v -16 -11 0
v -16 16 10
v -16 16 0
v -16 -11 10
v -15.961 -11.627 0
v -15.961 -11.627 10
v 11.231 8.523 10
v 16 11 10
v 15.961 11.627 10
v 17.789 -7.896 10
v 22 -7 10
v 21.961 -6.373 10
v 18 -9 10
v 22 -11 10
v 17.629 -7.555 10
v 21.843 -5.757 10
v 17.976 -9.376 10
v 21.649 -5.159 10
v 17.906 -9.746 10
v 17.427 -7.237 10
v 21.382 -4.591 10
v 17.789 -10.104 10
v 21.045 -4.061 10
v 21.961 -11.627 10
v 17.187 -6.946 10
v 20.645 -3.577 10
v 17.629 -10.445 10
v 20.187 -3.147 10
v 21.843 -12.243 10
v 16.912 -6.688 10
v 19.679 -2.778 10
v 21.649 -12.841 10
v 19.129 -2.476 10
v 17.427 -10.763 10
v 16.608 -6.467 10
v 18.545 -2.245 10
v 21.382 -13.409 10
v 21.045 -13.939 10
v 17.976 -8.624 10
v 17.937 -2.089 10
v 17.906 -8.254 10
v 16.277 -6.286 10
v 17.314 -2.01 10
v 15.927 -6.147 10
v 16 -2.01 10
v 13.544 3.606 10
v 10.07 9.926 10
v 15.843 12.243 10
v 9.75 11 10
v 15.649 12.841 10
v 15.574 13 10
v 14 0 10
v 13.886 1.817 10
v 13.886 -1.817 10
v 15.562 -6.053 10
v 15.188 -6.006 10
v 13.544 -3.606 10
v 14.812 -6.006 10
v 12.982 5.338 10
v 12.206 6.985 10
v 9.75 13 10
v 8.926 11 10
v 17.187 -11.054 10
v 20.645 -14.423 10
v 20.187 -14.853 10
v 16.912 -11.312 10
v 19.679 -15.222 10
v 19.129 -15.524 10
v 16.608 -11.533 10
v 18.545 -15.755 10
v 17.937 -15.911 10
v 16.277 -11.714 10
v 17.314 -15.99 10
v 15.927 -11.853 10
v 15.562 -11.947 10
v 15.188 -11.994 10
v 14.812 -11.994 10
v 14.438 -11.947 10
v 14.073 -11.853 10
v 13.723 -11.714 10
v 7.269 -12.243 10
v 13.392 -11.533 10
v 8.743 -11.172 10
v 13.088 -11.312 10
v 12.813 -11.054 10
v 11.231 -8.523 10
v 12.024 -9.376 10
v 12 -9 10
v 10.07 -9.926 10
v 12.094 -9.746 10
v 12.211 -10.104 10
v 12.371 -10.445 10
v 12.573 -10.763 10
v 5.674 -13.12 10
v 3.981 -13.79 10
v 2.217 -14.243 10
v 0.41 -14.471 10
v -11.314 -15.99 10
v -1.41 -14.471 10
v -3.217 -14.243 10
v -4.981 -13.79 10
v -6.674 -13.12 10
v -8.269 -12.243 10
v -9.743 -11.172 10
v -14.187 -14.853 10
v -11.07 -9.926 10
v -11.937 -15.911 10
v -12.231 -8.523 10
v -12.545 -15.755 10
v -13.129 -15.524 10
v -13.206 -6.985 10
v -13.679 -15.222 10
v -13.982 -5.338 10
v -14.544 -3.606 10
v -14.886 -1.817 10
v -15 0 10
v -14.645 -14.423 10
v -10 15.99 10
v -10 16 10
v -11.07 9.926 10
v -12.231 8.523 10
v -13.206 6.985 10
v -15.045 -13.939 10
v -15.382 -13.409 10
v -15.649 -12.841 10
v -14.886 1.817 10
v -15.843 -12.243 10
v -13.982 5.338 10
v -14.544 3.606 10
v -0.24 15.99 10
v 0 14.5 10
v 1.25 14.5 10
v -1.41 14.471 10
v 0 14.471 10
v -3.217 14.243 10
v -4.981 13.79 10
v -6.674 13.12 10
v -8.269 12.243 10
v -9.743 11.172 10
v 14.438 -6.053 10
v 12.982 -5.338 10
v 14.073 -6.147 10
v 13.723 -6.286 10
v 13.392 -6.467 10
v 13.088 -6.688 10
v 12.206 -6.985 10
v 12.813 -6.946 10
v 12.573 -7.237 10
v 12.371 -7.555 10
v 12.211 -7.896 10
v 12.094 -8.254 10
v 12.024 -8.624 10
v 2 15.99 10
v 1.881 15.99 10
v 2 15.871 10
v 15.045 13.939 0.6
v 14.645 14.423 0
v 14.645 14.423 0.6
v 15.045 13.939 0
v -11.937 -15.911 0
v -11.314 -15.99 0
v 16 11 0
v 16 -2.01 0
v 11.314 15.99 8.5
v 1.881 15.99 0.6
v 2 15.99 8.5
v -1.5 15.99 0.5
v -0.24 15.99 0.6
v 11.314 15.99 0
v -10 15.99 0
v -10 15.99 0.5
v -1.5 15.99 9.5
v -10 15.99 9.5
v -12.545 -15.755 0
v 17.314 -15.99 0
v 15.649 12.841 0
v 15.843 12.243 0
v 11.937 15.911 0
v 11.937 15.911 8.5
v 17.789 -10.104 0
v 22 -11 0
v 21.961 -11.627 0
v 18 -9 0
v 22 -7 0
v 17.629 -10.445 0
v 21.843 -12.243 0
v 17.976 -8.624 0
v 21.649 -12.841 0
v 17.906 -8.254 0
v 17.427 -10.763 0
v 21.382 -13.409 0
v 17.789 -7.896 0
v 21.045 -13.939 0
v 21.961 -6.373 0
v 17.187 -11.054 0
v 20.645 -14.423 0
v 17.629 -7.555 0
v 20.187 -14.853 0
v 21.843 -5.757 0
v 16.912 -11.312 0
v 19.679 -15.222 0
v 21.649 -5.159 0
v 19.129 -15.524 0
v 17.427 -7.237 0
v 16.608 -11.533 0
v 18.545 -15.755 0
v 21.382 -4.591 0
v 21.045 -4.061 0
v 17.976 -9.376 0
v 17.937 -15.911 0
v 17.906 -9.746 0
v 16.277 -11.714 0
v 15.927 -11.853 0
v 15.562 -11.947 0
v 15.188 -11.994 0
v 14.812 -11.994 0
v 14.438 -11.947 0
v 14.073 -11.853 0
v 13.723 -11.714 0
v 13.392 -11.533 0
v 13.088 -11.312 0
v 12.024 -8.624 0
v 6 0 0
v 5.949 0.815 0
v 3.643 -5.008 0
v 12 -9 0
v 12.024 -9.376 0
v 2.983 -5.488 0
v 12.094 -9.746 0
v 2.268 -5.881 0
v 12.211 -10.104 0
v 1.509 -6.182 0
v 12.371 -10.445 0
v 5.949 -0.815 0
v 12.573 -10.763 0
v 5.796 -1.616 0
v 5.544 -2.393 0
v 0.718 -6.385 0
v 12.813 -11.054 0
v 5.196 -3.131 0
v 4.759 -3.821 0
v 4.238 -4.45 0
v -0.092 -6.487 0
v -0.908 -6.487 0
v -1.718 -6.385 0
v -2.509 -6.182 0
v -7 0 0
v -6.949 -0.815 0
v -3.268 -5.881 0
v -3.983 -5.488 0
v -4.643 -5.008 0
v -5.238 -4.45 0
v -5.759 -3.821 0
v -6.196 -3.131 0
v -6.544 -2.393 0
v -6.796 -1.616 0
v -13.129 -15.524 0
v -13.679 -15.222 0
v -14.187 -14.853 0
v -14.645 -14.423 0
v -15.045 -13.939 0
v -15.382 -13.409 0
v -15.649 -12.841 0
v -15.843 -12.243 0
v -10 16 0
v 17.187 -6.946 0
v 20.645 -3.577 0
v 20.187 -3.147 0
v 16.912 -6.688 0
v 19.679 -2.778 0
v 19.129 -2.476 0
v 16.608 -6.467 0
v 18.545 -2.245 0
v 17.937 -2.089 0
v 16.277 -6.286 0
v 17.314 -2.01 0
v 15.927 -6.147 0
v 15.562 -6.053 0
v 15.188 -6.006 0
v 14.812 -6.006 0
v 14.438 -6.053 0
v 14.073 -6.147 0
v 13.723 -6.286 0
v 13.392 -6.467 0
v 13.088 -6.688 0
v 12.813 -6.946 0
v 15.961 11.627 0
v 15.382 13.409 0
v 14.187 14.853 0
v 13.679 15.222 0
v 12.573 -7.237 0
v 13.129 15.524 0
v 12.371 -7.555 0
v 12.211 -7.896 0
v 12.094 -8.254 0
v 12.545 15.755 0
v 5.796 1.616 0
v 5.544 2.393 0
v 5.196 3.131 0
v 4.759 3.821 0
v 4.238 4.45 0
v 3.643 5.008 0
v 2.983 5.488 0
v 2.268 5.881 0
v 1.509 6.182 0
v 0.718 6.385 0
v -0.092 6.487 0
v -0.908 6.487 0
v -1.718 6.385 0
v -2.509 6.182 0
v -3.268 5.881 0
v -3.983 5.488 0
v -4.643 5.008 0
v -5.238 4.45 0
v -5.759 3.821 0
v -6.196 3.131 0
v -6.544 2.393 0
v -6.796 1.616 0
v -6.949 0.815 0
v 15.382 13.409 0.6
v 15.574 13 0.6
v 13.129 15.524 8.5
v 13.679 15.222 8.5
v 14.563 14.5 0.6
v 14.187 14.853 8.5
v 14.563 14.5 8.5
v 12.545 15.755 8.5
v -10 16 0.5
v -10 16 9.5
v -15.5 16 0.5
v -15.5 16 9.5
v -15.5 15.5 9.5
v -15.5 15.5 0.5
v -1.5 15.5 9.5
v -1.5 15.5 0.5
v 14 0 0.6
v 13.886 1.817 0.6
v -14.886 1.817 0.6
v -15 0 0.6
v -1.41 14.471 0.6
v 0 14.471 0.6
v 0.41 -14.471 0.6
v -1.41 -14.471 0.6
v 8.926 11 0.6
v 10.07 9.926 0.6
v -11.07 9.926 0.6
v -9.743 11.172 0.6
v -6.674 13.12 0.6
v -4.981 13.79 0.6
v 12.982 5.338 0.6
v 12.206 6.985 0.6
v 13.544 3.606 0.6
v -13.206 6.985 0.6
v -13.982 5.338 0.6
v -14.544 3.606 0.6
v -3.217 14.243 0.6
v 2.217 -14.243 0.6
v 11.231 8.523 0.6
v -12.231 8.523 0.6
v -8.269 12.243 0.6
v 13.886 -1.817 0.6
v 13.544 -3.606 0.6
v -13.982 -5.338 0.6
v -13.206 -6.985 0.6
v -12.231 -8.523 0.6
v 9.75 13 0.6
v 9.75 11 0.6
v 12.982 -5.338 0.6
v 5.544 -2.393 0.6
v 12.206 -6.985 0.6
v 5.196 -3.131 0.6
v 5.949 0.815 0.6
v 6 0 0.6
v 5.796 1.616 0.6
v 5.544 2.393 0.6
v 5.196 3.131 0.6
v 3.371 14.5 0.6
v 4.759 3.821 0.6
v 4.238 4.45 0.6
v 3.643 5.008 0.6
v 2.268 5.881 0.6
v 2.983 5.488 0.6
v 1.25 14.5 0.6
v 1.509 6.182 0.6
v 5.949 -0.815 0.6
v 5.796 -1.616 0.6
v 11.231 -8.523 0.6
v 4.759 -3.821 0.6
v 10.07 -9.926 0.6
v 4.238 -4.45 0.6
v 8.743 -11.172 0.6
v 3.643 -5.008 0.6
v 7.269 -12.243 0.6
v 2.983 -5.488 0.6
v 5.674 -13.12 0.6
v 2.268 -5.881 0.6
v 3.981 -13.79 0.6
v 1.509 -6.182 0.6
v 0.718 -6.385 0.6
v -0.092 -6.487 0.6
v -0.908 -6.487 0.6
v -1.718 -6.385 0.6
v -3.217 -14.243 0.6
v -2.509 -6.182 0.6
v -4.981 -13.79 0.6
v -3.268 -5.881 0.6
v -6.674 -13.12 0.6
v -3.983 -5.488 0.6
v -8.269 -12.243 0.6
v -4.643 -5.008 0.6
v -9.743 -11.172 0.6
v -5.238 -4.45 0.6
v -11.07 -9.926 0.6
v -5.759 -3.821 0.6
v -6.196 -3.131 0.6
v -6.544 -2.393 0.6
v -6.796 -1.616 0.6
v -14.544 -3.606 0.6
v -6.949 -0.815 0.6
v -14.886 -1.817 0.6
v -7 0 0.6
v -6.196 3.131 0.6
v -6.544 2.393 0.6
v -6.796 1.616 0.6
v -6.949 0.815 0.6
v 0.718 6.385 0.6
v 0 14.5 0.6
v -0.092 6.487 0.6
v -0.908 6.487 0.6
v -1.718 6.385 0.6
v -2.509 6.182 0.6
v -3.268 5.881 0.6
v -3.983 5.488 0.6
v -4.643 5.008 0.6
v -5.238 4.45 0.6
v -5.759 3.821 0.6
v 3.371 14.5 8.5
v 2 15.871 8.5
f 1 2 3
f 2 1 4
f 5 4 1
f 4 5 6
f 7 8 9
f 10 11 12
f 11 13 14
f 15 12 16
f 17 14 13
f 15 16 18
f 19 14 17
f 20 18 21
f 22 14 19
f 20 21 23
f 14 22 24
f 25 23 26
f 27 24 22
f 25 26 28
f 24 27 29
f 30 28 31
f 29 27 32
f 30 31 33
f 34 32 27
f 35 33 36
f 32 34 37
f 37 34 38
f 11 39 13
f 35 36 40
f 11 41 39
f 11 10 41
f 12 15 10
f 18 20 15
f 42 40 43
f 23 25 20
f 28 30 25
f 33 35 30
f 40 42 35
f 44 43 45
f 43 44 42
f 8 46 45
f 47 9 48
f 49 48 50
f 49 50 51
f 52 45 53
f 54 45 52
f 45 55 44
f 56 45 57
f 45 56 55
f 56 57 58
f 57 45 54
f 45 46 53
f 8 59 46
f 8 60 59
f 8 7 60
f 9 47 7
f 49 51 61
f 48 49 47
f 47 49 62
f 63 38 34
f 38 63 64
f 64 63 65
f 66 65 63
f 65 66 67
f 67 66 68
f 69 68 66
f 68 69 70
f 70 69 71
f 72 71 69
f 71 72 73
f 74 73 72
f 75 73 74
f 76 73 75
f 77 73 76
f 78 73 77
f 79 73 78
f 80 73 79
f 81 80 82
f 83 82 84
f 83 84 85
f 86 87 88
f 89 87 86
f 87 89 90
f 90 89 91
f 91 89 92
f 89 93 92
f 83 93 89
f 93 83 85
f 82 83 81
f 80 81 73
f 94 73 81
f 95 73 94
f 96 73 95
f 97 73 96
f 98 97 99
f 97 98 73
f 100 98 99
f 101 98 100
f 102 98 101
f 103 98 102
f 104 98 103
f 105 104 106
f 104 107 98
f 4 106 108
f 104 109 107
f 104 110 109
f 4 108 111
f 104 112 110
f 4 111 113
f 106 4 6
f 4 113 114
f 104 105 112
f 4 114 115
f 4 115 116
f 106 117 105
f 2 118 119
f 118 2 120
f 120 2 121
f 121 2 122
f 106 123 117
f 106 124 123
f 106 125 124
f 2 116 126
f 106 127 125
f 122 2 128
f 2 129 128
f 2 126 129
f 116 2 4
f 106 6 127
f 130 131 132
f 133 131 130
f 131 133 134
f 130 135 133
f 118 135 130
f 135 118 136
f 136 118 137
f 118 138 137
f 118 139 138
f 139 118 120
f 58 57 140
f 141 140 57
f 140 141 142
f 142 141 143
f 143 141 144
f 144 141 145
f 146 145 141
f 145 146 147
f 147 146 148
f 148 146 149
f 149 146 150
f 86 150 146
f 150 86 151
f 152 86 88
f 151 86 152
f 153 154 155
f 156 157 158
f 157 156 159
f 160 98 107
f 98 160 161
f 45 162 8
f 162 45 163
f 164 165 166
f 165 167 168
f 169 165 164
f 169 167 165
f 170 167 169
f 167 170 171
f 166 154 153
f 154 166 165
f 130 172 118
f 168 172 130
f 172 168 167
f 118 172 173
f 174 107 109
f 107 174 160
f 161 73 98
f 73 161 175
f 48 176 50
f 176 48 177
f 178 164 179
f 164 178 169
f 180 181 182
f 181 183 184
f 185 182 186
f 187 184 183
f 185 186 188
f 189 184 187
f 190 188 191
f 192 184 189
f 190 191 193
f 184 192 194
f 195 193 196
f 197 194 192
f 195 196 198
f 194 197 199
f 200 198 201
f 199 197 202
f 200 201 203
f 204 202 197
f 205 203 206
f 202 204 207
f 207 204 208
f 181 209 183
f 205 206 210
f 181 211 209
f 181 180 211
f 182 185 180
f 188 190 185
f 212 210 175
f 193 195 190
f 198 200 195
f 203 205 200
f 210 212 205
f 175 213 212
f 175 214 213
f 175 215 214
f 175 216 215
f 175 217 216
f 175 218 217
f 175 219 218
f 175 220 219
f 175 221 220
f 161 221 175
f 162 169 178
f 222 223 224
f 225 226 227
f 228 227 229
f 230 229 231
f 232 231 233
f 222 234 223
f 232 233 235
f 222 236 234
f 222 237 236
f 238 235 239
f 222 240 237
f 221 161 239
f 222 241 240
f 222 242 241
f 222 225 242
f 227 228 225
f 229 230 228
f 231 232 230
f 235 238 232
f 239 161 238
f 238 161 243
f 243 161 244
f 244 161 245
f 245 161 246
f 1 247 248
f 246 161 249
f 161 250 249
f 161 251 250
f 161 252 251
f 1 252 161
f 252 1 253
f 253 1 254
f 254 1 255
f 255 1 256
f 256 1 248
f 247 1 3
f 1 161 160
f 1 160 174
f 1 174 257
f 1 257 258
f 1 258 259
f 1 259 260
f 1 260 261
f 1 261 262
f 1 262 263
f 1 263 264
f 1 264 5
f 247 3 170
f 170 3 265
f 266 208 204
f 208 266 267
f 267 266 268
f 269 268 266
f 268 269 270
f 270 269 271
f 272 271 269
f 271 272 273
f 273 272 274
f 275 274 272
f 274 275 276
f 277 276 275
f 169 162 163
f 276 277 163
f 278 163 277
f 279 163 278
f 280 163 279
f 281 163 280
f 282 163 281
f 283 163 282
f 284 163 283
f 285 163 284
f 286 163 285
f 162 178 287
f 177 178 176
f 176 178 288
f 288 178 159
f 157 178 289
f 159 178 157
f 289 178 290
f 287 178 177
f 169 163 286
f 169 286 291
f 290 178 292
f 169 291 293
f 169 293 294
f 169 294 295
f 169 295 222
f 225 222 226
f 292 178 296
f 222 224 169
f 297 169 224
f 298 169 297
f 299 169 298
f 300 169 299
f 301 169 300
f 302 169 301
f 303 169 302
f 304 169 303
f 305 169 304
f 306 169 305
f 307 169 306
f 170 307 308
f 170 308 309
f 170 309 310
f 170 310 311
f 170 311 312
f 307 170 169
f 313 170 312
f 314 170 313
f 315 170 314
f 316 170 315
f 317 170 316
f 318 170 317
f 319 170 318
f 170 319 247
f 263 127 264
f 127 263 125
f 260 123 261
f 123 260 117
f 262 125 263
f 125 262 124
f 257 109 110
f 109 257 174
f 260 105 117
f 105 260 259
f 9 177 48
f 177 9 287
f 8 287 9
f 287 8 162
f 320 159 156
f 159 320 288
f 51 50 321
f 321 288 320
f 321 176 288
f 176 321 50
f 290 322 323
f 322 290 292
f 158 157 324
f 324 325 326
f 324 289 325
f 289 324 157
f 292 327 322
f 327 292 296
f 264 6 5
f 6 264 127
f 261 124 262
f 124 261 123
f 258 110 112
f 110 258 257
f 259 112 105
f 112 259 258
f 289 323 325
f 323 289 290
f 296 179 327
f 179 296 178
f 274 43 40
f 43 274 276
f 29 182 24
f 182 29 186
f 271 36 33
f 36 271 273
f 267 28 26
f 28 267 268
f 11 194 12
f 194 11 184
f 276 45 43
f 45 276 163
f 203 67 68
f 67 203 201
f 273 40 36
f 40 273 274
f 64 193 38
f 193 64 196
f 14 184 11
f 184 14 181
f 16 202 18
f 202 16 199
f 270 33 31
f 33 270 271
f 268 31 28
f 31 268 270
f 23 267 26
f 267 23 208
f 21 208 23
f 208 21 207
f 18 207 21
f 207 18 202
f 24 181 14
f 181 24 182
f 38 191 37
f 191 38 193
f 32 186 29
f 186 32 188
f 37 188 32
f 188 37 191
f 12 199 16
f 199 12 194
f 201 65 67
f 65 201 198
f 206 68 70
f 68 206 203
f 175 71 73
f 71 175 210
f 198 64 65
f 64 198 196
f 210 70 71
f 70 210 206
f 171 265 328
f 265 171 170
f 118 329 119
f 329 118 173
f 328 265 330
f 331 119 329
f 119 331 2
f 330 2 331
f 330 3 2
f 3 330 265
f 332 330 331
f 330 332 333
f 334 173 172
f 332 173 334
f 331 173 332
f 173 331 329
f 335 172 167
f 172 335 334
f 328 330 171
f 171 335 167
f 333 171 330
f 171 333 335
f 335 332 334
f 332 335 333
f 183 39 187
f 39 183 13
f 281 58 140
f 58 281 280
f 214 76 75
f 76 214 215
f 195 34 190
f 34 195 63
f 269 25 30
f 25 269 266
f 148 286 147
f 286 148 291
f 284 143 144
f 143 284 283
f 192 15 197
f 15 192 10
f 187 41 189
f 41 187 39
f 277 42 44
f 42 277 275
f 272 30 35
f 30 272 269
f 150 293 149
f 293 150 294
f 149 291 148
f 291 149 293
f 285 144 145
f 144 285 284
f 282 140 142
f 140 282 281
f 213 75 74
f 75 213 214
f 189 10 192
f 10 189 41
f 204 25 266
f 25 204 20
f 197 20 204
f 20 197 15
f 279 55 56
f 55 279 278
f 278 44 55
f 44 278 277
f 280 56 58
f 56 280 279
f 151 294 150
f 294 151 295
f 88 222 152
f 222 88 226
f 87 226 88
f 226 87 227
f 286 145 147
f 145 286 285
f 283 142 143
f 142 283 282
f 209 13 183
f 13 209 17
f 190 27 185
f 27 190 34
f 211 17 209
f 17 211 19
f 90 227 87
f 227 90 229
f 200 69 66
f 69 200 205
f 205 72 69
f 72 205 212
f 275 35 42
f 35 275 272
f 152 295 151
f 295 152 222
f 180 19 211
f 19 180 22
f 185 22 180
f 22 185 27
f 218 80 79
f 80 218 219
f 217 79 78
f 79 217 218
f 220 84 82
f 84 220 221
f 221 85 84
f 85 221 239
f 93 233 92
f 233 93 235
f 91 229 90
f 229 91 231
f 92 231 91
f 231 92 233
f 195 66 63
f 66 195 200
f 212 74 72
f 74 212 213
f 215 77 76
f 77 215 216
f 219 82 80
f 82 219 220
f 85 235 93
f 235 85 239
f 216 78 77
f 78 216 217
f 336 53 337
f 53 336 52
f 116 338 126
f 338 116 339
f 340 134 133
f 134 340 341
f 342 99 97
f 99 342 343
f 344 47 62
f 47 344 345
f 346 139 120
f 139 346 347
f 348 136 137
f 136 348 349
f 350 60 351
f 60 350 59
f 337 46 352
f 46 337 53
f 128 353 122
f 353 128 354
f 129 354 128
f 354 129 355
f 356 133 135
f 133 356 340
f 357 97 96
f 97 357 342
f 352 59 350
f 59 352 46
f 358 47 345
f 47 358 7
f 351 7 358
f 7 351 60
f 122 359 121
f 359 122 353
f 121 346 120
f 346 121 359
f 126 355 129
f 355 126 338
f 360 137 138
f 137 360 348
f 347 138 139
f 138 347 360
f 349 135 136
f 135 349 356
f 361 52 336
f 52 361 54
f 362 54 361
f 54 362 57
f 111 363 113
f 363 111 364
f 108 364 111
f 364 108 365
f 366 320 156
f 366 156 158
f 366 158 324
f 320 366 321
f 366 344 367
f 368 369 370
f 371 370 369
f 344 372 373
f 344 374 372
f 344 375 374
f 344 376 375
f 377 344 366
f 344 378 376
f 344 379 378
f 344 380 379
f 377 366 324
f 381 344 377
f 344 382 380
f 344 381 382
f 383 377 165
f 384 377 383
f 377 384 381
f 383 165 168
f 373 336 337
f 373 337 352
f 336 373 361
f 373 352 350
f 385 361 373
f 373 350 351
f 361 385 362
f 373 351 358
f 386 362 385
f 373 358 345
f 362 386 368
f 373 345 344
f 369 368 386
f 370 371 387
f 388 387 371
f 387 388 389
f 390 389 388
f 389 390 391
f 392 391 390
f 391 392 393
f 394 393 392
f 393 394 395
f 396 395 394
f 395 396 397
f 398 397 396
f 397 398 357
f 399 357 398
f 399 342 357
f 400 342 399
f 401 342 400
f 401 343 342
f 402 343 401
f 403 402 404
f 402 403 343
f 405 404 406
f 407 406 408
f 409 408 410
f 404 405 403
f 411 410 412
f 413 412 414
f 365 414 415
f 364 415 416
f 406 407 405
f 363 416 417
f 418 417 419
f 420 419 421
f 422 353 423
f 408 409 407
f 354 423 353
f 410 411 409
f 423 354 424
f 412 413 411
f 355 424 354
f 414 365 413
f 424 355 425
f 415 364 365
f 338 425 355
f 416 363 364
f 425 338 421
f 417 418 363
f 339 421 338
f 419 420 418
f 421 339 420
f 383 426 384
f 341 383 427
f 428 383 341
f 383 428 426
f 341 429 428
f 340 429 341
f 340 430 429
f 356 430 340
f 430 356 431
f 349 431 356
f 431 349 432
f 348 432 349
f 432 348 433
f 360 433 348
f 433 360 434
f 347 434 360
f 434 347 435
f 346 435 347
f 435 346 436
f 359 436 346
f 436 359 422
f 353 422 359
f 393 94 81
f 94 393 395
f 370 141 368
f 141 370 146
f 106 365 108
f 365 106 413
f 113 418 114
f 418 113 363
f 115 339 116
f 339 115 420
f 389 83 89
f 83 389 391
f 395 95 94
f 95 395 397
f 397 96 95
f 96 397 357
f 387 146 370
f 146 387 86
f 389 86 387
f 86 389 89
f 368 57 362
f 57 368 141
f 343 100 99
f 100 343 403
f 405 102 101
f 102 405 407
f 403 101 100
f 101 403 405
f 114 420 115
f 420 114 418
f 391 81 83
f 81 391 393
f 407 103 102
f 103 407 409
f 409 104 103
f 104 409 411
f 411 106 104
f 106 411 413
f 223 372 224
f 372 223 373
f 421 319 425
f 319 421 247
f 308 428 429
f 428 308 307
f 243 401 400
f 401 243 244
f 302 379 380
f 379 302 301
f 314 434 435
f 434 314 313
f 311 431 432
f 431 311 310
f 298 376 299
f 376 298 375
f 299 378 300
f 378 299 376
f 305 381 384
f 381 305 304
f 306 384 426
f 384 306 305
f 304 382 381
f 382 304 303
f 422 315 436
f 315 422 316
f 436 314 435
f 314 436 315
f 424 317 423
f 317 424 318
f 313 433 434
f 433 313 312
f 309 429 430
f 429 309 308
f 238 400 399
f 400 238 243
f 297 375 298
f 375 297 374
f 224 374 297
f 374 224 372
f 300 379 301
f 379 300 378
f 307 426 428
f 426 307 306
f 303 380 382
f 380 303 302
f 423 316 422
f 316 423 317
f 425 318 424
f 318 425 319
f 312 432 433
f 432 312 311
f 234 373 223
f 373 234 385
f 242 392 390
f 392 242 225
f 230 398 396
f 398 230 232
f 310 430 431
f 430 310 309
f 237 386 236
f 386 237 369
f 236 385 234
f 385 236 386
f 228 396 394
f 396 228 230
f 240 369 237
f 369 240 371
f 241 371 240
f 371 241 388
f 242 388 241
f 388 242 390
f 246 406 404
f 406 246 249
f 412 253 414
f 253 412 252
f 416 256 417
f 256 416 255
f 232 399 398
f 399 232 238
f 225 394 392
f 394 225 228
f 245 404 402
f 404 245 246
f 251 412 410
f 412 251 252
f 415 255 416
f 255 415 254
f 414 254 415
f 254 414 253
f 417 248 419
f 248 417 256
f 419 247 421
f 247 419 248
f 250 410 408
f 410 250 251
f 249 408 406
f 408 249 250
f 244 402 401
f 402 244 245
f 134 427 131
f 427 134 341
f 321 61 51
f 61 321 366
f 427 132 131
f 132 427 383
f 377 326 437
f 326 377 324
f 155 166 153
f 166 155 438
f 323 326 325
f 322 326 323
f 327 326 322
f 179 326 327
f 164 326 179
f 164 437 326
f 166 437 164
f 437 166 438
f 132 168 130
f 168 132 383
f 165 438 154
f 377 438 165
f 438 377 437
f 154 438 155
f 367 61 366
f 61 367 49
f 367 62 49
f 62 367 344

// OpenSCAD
$fn = 50;


difference() {
	union() {
		hull() {
			translate(v = [-11.0000000000, 11.0000000000, 0]) {
				cylinder(h = 10, r = 5);
			}
			translate(v = [11.0000000000, 11.0000000000, 0]) {
				cylinder(h = 10, r = 5);
			}
			translate(v = [-11.0000000000, -11.0000000000, 0]) {
				cylinder(h = 10, r = 5);
			}
			translate(v = [11.0000000000, -11.0000000000, 0]) {
				cylinder(h = 10, r = 5);
			}
		}
		translate(v = [7.5000000000, -9.0000000000, 0]) {
			hull() {
				translate(v = [-9.5000000000, 2.0000000000, 0]) {
					cylinder(h = 10, r = 5);
				}
				translate(v = [9.5000000000, 2.0000000000, 0]) {
					cylinder(h = 10, r = 5);
				}
				translate(v = [-9.5000000000, -2.0000000000, 0]) {
					cylinder(h = 10, r = 5);
				}
				translate(v = [9.5000000000, -2.0000000000, 0]) {
					cylinder(h = 10, r = 5);
				}
			}
		}
		translate(v = [-16.0000000000, 10.0000000000, 0]) {
			cube(size = [6, 6, 10]);
		}
	}
	union() {
		translate(v = [-15.5000000000, 15.5000000000, 0.5000000000]) {
			cube(size = [14, 0.5000000000, 9.0000000000]);
		}
		translate(v = [15.0000000000, -9.0000000000, -50.0000000000]) {
			cylinder(h = 100, r = 3.0000000000);
		}
		translate(v = [-0.5000000000, 0.0000000000, 0.6000000000]) {
			cylinder(h = 12.4000000000, r = 14.5000000000);
		}
		translate(v = [-0.5000000000, 0.0000000000, -5.0000000000]) {
			cylinder(h = 10, r = 6.5000000000);
		}
		translate(v = [0.0000000000, 13.0000000000, 0.6000000000]) {
			cube(size = [16.0000000000, 1.5000000000, 12.4000000000]);
		}
		translate(v = [2.0000000000, 13.0000000000, 8.5000000000]) {
			cube(size = [14.0000000000, 4.5000000000, 1.5000000000]);
		}
		translate(v = [-3.0000000000, 18.7500000000, 0.6000000000]) {
			rotate(a = [0, 0, -45]) {
				cube(size = [10, 1.5000000000, 12.4000000000]);
			}
		}
		translate(v = [2.2500000000, 11.0000000000, 0.6000000000]) {
			cube(size = [7.5000000000, 2, 9.4000000000]);
		}
	}
}
